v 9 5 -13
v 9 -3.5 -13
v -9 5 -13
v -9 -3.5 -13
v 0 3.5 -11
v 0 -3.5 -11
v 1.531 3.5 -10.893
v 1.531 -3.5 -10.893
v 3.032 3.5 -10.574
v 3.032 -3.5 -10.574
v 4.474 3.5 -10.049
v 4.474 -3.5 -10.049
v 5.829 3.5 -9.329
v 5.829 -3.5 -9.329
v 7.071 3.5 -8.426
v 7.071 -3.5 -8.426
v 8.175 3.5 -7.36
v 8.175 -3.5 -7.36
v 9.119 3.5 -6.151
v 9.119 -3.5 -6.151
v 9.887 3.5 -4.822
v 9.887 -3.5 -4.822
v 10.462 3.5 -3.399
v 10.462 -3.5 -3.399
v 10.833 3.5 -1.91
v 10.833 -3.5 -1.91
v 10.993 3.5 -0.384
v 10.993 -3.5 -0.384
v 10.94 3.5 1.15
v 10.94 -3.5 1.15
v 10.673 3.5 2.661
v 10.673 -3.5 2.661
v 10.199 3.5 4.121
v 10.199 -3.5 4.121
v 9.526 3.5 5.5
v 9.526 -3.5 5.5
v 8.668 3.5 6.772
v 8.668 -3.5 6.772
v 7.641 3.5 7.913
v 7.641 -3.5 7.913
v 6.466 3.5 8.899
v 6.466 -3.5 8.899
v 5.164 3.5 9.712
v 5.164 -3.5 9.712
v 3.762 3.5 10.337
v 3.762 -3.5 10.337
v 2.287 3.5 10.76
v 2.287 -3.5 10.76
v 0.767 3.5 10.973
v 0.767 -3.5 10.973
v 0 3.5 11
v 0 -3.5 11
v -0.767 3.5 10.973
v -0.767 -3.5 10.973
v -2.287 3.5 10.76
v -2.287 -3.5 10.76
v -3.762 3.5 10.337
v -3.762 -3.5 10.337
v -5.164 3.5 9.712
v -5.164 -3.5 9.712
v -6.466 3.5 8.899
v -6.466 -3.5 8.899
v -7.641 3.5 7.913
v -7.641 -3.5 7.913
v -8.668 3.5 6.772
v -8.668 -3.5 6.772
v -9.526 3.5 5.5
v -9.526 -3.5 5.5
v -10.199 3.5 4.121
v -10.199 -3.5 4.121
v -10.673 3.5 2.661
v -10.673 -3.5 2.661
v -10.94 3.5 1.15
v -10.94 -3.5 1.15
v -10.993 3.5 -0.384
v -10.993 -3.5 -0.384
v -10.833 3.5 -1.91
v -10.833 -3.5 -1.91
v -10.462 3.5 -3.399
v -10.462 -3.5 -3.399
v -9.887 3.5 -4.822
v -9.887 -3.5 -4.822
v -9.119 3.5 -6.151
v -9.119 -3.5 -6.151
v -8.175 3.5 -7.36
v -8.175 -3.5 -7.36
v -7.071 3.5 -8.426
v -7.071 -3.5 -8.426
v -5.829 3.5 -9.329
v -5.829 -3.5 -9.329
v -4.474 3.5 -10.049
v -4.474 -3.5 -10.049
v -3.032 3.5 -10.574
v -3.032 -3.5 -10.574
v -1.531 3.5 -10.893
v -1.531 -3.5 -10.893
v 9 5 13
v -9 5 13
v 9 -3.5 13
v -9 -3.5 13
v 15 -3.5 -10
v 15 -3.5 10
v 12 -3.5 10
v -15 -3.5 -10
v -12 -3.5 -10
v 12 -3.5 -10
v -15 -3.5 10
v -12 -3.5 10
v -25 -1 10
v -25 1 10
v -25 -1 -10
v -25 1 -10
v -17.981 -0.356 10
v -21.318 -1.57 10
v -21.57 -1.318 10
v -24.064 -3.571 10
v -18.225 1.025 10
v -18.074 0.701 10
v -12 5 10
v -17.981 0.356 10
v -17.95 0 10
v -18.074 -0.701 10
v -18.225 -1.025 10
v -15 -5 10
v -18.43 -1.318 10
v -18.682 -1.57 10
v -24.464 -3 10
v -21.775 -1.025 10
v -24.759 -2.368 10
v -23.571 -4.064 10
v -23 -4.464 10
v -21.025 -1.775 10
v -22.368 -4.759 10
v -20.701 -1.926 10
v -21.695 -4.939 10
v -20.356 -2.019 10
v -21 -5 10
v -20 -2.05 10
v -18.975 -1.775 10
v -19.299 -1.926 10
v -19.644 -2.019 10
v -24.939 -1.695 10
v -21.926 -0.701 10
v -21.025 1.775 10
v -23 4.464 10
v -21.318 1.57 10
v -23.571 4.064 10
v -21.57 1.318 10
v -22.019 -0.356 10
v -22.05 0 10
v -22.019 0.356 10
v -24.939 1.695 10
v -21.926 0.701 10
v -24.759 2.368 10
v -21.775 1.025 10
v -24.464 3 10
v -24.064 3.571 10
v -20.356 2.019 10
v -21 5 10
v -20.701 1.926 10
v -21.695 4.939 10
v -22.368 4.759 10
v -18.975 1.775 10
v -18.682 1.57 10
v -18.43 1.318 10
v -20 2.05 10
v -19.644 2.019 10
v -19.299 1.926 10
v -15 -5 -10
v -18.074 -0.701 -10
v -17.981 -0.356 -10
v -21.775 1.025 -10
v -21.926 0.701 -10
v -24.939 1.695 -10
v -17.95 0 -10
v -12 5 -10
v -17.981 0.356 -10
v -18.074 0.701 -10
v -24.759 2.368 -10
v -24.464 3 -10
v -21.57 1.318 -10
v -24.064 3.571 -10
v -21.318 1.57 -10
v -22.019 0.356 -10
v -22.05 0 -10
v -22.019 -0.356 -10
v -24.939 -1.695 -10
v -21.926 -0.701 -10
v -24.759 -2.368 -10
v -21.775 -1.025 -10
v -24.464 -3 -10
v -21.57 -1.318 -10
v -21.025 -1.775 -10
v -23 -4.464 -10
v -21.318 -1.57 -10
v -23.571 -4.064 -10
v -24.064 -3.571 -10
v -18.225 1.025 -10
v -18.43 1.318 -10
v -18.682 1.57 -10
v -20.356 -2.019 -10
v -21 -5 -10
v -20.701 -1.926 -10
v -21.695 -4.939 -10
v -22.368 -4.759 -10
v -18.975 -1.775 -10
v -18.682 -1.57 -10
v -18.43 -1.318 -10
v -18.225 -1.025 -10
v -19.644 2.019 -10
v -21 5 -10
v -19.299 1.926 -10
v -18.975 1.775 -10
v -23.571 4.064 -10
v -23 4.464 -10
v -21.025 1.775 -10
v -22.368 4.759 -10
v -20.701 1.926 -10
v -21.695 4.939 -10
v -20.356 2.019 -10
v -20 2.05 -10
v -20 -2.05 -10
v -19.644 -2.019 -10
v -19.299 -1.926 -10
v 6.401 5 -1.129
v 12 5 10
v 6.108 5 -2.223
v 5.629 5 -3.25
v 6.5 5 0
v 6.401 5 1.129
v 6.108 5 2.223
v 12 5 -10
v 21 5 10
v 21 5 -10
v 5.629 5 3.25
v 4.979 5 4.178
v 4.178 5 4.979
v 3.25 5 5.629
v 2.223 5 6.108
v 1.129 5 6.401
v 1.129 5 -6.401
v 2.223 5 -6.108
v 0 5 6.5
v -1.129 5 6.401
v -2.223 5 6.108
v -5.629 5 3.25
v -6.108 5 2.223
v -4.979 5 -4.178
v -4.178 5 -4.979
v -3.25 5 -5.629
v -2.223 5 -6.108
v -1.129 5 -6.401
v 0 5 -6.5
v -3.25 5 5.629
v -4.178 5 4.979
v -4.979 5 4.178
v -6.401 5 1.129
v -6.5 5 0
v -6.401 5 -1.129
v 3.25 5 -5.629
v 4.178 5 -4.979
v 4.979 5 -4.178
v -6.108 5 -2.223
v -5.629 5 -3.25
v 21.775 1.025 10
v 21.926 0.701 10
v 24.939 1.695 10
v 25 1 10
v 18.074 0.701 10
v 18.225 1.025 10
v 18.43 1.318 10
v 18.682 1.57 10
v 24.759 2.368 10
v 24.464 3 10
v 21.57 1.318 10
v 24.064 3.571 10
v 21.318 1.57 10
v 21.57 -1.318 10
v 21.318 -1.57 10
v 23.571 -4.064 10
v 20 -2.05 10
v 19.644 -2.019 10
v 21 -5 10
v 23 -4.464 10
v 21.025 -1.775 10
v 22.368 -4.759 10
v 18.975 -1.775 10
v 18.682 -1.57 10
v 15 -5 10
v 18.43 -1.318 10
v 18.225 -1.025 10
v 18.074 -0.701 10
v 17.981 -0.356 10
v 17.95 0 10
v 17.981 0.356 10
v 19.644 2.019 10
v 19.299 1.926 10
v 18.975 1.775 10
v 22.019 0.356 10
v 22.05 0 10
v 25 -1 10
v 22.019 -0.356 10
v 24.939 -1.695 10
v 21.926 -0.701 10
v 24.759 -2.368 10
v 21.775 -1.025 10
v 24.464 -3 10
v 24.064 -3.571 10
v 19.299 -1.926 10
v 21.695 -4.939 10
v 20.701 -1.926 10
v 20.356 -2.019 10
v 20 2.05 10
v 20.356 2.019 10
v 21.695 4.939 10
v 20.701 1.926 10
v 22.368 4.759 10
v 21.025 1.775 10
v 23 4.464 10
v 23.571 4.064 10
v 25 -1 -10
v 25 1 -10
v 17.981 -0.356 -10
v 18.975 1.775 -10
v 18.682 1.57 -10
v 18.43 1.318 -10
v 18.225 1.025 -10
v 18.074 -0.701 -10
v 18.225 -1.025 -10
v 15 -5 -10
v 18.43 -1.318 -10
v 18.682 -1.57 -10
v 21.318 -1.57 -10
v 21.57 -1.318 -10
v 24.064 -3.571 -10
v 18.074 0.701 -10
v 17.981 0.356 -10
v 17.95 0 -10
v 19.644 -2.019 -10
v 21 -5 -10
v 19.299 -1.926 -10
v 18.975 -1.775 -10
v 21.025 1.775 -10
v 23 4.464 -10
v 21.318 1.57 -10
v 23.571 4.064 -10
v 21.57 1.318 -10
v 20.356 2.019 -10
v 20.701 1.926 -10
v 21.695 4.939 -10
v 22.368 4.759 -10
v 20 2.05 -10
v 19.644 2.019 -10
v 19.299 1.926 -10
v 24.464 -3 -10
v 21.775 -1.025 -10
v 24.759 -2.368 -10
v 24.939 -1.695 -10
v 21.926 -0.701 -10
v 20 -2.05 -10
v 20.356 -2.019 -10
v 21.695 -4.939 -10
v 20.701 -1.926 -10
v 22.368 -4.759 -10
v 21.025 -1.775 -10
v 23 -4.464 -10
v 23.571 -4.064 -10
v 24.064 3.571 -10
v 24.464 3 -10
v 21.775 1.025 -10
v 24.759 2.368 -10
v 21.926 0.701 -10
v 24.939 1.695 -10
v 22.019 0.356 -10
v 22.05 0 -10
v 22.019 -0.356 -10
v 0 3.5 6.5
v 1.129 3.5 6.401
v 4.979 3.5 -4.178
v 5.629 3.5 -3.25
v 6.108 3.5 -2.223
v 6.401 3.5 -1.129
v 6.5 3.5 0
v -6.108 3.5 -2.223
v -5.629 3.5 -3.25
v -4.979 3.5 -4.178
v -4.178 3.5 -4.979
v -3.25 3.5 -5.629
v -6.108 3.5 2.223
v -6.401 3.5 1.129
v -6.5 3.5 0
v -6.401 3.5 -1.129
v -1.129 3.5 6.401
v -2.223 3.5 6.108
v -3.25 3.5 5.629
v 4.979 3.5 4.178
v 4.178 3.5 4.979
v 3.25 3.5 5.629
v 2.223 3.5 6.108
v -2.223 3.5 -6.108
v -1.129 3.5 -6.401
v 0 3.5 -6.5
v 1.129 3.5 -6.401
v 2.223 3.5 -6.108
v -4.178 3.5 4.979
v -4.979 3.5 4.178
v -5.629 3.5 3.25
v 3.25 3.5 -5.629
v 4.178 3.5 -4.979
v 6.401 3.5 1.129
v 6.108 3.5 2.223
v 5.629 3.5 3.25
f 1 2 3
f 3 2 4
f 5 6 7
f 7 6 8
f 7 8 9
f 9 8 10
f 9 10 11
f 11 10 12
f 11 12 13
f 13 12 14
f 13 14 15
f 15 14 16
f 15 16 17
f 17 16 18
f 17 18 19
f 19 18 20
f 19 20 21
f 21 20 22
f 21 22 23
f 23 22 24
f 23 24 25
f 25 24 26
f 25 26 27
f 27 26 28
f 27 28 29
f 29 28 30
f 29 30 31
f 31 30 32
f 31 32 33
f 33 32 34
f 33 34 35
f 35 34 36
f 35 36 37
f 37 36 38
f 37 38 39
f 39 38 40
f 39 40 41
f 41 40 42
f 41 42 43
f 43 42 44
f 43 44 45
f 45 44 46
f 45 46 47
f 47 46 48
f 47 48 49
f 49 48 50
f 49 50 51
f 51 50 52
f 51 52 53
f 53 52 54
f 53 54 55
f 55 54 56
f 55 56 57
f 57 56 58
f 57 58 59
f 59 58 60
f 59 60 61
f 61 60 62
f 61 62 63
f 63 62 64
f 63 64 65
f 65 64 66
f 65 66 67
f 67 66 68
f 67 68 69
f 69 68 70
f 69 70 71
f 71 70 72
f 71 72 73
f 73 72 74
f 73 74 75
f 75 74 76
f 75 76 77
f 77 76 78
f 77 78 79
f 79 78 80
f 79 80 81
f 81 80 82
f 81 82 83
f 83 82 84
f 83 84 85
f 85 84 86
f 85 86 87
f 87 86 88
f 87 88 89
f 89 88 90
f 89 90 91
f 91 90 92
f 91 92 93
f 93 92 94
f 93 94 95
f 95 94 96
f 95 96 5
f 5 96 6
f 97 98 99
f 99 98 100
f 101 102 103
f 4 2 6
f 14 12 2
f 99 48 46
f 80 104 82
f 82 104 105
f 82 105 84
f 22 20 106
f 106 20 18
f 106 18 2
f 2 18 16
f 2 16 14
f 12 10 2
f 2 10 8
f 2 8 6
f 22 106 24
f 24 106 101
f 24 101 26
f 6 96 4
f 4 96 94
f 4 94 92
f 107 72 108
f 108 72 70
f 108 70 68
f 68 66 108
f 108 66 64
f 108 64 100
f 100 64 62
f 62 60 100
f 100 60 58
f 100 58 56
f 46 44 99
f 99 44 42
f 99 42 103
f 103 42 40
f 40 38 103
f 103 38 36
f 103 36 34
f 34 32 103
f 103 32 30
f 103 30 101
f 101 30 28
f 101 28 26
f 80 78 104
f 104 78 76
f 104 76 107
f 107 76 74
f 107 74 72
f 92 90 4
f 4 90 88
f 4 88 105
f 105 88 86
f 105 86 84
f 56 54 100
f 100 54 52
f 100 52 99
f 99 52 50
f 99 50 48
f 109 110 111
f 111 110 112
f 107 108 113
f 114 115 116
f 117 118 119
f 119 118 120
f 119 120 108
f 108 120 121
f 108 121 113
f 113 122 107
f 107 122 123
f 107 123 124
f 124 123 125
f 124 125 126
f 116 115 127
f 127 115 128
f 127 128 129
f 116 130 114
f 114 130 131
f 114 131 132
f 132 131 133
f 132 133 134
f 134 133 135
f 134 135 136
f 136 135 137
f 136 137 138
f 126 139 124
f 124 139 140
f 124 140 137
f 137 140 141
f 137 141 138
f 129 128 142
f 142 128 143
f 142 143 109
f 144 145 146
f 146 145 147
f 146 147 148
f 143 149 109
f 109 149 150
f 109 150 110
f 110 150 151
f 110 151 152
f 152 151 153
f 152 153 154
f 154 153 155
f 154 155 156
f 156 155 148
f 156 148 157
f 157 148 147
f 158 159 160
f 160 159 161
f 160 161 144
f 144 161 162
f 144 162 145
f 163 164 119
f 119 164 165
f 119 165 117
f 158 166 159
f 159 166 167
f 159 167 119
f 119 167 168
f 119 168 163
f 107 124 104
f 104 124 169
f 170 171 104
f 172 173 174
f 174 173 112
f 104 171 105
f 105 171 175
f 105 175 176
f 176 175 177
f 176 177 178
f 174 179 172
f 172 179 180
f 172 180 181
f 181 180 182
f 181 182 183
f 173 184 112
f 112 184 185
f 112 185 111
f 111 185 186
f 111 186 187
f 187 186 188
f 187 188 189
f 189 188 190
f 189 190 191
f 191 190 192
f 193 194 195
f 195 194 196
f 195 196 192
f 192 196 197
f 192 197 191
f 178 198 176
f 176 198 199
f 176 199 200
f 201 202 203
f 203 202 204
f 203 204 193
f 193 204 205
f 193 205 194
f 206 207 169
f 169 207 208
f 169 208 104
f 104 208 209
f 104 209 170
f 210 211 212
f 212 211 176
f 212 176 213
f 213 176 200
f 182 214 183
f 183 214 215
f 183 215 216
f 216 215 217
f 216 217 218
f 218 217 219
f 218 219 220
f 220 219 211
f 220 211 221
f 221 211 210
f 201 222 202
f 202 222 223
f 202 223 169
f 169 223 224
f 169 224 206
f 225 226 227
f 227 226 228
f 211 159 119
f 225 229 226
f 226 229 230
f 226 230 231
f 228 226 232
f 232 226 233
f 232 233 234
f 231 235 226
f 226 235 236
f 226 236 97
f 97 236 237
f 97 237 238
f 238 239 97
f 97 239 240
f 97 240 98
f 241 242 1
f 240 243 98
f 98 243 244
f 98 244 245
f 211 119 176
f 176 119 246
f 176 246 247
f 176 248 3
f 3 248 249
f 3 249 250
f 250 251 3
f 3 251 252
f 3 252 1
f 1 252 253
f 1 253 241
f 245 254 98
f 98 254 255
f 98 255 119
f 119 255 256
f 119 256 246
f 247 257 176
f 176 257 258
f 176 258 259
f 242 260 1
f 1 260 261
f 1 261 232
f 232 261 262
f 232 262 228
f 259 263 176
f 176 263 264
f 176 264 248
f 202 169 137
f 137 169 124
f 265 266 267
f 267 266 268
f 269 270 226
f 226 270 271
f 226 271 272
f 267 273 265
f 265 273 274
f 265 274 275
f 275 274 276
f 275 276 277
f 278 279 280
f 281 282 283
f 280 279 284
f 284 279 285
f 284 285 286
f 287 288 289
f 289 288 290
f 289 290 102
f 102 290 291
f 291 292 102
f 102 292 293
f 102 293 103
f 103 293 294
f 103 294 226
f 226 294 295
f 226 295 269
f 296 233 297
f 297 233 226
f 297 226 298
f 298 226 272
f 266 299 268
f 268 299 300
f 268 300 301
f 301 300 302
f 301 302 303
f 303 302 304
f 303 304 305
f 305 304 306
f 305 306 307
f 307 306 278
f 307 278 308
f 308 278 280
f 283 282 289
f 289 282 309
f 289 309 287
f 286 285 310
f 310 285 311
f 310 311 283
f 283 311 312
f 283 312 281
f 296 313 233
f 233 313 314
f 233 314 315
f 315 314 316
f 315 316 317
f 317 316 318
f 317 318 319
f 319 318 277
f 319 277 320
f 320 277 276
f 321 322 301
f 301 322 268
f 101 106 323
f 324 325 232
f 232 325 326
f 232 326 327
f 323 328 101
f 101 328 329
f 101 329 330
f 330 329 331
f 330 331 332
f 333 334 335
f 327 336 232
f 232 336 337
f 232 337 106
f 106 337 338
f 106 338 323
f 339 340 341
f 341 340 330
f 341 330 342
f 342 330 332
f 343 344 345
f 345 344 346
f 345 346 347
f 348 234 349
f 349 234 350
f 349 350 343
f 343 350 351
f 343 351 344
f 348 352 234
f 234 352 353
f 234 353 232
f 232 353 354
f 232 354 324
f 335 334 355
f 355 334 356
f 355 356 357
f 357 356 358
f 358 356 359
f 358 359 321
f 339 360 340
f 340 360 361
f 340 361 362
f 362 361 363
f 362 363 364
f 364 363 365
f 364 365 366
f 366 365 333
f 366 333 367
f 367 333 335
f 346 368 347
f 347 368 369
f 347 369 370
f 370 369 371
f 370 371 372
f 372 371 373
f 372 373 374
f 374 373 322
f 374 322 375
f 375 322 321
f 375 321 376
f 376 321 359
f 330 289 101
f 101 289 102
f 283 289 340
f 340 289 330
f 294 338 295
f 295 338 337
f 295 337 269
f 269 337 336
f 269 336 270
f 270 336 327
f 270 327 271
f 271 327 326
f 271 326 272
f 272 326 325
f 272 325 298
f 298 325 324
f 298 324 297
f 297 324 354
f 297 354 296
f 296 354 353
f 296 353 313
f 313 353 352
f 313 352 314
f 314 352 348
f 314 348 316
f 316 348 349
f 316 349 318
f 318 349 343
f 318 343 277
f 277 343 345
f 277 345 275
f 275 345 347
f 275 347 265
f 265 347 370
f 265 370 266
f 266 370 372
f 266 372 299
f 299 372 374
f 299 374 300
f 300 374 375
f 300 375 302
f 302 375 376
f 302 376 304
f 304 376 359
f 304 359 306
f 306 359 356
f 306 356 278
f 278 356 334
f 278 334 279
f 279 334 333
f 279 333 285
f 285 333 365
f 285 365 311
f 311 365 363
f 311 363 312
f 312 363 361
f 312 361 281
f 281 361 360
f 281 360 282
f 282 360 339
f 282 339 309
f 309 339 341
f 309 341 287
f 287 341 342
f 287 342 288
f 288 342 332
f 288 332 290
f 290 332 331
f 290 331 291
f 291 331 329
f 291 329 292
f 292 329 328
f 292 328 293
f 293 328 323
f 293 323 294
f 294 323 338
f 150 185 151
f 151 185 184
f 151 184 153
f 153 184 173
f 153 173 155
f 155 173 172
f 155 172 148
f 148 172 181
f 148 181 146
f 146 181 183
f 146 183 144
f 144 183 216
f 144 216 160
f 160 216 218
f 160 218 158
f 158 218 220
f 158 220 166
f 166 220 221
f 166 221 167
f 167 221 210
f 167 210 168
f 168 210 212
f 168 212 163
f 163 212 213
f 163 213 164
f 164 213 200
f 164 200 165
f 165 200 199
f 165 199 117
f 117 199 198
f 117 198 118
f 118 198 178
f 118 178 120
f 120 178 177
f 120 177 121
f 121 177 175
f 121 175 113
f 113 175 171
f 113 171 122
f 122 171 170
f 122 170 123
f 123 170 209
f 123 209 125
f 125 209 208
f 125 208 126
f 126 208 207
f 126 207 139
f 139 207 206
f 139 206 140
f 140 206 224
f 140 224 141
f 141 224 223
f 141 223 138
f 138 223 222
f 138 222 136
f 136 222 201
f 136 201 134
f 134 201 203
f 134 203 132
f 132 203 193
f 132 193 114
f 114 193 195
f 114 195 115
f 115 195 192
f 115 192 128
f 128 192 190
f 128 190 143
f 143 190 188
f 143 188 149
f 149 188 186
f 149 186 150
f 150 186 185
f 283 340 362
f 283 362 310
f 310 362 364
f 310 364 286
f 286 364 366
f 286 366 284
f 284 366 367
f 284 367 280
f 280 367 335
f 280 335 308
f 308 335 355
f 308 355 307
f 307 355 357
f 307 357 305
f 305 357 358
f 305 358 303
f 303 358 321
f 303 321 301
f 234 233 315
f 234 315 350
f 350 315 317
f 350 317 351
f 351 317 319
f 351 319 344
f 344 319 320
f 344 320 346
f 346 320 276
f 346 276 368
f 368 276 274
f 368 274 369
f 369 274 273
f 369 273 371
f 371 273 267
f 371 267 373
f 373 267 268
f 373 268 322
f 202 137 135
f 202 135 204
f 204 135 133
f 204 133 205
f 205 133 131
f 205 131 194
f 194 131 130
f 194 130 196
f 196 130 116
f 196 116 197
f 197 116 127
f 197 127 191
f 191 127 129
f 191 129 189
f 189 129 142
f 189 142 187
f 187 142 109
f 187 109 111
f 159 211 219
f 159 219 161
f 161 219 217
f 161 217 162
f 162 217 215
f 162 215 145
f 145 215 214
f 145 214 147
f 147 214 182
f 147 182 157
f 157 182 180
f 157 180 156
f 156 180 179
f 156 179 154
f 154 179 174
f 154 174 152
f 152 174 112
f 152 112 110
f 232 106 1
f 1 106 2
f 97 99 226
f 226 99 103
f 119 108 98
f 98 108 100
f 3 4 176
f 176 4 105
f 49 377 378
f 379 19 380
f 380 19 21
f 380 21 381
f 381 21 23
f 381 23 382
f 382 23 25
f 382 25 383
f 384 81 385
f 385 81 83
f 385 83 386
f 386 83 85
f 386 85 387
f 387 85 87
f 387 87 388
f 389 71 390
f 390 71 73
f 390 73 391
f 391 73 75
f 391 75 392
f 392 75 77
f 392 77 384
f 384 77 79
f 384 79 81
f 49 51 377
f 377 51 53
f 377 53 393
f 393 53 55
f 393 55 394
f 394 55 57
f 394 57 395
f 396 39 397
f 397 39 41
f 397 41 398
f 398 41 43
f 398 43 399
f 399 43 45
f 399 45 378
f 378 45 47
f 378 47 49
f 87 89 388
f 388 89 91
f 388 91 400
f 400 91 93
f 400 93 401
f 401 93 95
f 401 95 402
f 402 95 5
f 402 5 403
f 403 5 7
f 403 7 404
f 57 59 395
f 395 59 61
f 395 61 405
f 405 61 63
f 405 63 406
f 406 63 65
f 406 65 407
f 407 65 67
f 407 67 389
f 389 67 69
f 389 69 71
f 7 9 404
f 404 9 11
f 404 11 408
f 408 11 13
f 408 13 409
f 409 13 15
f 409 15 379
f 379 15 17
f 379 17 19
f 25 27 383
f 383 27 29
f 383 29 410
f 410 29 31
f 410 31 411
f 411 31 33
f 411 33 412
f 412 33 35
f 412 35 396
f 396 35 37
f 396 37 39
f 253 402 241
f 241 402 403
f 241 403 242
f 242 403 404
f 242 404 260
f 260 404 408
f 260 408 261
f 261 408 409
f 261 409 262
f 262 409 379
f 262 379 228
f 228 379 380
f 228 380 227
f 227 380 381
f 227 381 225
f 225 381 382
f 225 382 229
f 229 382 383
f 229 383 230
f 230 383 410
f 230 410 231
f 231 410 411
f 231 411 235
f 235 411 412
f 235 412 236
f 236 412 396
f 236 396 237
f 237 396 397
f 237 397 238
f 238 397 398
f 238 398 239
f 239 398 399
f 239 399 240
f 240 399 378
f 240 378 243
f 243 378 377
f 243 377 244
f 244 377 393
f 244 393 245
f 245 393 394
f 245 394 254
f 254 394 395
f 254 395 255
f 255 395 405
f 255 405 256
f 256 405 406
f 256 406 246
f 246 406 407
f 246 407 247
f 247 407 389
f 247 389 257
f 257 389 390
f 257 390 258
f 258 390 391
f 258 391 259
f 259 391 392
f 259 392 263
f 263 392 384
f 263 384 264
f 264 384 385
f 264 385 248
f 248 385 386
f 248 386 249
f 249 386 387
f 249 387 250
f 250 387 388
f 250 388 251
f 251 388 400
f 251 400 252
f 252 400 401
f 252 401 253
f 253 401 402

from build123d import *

# Parameters (mm, degrees)
SKETCH1_W           = 30
SKETCH1_H           = 26
SKETCH1_R           = 11
BOSS_EXTRUDE1_DEPTH = 3.5
SKETCH1_3_W         = 10
SKETCH1_3_H         = 20
BOSS_EXTRUDE2_DEPTH = 5
SKETCH2_R           = 2.05
CUT_EXTRUDE1_DEPTH  = 30
FILLET1_R           = 4
CHAMFER1_SIZE       = 6
SKETCH3_R           = 6.5
BOSS_EXTRUDE3_DEPTH = 1.5


with BuildPart() as part:
    # Sketch1 → Boss-Extrude1 (new, symmetric)
    with BuildSketch(Plane(origin=(0, 0, 0), x_dir=(1, 0, 0), z_dir=(0, 1, 0))):
        Rectangle(SKETCH1_W, SKETCH1_H)
        with Locations(Location((0, 0, 0), (0, 0, 270))):
            Circle(SKETCH1_R, mode=Mode.SUBTRACT)
    extrude(amount=BOSS_EXTRUDE1_DEPTH, both=True)

    # Sketch1<3> → Boss-Extrude2 (add, symmetric)
    with BuildSketch(Plane(origin=(0, 0, 0), x_dir=(1, 0, 0), z_dir=(0, 1, 0))):
        with Locations((-20, 0)):
            Rectangle(SKETCH1_3_W, SKETCH1_3_H)
        with Locations((20, 0)):
            Rectangle(SKETCH1_3_W, SKETCH1_3_H)
    extrude(amount=BOSS_EXTRUDE2_DEPTH, both=True)

    # Sketch2 → Cut-Extrude1 (cut)
    with BuildSketch(Plane(origin=(0, 0, -10), x_dir=(-1, 0, 0), z_dir=(0, 0, -1))):
        with Locations((-20, 0)):
            Circle(SKETCH2_R)
        with Locations((20, 0)):
            Circle(SKETCH2_R)
    extrude(amount=-CUT_EXTRUDE1_DEPTH, mode=Mode.SUBTRACT)

    # Fillet1
    fillet1_edges = [part.edges().sort_by_distance(p)[0] for p in [
        (-25, -5, 0),
        (-25, 5, 0),
        (25, 5, 0),
        (25, -5, 0),
    ]]
    fillet(fillet1_edges, radius=FILLET1_R)

    # Chamfer1
    # the kernel refuses this chamfer: 6 mm, written as the material it takes off along each edge
    with BuildSketch(Plane(origin=(15, -18.930097928, -13), x_dir=(0.02749587661058649, 0, 0.9996219169112968), z_dir=(0, 1, 0))) as chamfer1_piece_1_section:
        Polygon((CHAMFER1_SIZE * 0.999621916911, -CHAMFER1_SIZE * 0.0274958766106), (-CHAMFER1_SIZE * 0.0274958766106, -CHAMFER1_SIZE * 0.999621916911), (0, 0), align=None)
    chamfer1_piece_1 = extrude(amount=37.860195856, mode=Mode.PRIVATE)
    chamfer1_piece_1 = split(chamfer1_piece_1, bisect_by=Plane(origin=(12.639593495, 0, -10), z_dir=(0, 0, -1)), keep=Keep.TOP, mode=Mode.PRIVATE)
    add(chamfer1_piece_1, mode=Mode.SUBTRACT)
    with BuildSketch(Plane(origin=(15, 18.930097928, 13), x_dir=(0.02749587661058649, 0, -0.9996219169112968), z_dir=(0, -1, 0))) as chamfer1_piece_2_section:
        Polygon((CHAMFER1_SIZE * 0.999621916911, -CHAMFER1_SIZE * 0.0274958766106), (-CHAMFER1_SIZE * 0.0274958766106, -CHAMFER1_SIZE * 0.999621916911), (0, 0), align=None)
    chamfer1_piece_2 = extrude(amount=37.860195856, mode=Mode.PRIVATE)
    chamfer1_piece_2 = split(chamfer1_piece_2, bisect_by=Plane(origin=(12.639593495, 0, 10), z_dir=(0, 0, 1)), keep=Keep.TOP, mode=Mode.PRIVATE)
    add(chamfer1_piece_2, mode=Mode.SUBTRACT)
    with BuildSketch(Plane(origin=(-15, 18.930097928, 13), x_dir=(0.9996219169112969, 0, 0.02749587661058649), z_dir=(0, -1, 0))) as chamfer1_piece_3_section:
        Polygon((CHAMFER1_SIZE * 0.999621916911, -CHAMFER1_SIZE * 0.0274958766106), (-CHAMFER1_SIZE * 0.0274958766106, -CHAMFER1_SIZE * 0.999621916911), (0, 0), align=None)
    chamfer1_piece_3 = extrude(amount=37.860195856, mode=Mode.PRIVATE)
    chamfer1_piece_3 = split(chamfer1_piece_3, bisect_by=Plane(origin=(-12.639593495, 0, 10), z_dir=(0, 0, 1)), keep=Keep.TOP, mode=Mode.PRIVATE)
    add(chamfer1_piece_3, mode=Mode.SUBTRACT)
    with BuildSketch(Plane(origin=(-15, -18.930097928, -13), x_dir=(0.9996219169112969, 0, -0.02749587661058649), z_dir=(0, 1, 0))) as chamfer1_piece_4_section:
        Polygon((CHAMFER1_SIZE * 0.999621916911, -CHAMFER1_SIZE * 0.0274958766106), (-CHAMFER1_SIZE * 0.0274958766106, -CHAMFER1_SIZE * 0.999621916911), (0, 0), align=None)
    chamfer1_piece_4 = extrude(amount=37.860195856, mode=Mode.PRIVATE)
    chamfer1_piece_4 = split(chamfer1_piece_4, bisect_by=Plane(origin=(-12.639593495, 0, -10), z_dir=(0, 0, -1)), keep=Keep.TOP, mode=Mode.PRIVATE)
    add(chamfer1_piece_4, mode=Mode.SUBTRACT)

    # Sketch3 → Boss-Extrude3 (add)
    with BuildSketch(Plane(origin=(0, 3.5, 0), x_dir=(1, 0, 0), z_dir=(0, 1, 0))):
        Polygon((15, -10), (15, 10), (12, 10), (9, 13), (-9, 13), (-12, 10), (-15, 10), (-15, -10), (-12, -10), (-9, -13), (9, -13), (12, -10), align=None)
        with Locations(Location((0, 0, 0), (0, 0, 270))):
            Circle(SKETCH3_R, mode=Mode.SUBTRACT)
    extrude(amount=BOSS_EXTRUDE3_DEPTH)


solid = part.part
